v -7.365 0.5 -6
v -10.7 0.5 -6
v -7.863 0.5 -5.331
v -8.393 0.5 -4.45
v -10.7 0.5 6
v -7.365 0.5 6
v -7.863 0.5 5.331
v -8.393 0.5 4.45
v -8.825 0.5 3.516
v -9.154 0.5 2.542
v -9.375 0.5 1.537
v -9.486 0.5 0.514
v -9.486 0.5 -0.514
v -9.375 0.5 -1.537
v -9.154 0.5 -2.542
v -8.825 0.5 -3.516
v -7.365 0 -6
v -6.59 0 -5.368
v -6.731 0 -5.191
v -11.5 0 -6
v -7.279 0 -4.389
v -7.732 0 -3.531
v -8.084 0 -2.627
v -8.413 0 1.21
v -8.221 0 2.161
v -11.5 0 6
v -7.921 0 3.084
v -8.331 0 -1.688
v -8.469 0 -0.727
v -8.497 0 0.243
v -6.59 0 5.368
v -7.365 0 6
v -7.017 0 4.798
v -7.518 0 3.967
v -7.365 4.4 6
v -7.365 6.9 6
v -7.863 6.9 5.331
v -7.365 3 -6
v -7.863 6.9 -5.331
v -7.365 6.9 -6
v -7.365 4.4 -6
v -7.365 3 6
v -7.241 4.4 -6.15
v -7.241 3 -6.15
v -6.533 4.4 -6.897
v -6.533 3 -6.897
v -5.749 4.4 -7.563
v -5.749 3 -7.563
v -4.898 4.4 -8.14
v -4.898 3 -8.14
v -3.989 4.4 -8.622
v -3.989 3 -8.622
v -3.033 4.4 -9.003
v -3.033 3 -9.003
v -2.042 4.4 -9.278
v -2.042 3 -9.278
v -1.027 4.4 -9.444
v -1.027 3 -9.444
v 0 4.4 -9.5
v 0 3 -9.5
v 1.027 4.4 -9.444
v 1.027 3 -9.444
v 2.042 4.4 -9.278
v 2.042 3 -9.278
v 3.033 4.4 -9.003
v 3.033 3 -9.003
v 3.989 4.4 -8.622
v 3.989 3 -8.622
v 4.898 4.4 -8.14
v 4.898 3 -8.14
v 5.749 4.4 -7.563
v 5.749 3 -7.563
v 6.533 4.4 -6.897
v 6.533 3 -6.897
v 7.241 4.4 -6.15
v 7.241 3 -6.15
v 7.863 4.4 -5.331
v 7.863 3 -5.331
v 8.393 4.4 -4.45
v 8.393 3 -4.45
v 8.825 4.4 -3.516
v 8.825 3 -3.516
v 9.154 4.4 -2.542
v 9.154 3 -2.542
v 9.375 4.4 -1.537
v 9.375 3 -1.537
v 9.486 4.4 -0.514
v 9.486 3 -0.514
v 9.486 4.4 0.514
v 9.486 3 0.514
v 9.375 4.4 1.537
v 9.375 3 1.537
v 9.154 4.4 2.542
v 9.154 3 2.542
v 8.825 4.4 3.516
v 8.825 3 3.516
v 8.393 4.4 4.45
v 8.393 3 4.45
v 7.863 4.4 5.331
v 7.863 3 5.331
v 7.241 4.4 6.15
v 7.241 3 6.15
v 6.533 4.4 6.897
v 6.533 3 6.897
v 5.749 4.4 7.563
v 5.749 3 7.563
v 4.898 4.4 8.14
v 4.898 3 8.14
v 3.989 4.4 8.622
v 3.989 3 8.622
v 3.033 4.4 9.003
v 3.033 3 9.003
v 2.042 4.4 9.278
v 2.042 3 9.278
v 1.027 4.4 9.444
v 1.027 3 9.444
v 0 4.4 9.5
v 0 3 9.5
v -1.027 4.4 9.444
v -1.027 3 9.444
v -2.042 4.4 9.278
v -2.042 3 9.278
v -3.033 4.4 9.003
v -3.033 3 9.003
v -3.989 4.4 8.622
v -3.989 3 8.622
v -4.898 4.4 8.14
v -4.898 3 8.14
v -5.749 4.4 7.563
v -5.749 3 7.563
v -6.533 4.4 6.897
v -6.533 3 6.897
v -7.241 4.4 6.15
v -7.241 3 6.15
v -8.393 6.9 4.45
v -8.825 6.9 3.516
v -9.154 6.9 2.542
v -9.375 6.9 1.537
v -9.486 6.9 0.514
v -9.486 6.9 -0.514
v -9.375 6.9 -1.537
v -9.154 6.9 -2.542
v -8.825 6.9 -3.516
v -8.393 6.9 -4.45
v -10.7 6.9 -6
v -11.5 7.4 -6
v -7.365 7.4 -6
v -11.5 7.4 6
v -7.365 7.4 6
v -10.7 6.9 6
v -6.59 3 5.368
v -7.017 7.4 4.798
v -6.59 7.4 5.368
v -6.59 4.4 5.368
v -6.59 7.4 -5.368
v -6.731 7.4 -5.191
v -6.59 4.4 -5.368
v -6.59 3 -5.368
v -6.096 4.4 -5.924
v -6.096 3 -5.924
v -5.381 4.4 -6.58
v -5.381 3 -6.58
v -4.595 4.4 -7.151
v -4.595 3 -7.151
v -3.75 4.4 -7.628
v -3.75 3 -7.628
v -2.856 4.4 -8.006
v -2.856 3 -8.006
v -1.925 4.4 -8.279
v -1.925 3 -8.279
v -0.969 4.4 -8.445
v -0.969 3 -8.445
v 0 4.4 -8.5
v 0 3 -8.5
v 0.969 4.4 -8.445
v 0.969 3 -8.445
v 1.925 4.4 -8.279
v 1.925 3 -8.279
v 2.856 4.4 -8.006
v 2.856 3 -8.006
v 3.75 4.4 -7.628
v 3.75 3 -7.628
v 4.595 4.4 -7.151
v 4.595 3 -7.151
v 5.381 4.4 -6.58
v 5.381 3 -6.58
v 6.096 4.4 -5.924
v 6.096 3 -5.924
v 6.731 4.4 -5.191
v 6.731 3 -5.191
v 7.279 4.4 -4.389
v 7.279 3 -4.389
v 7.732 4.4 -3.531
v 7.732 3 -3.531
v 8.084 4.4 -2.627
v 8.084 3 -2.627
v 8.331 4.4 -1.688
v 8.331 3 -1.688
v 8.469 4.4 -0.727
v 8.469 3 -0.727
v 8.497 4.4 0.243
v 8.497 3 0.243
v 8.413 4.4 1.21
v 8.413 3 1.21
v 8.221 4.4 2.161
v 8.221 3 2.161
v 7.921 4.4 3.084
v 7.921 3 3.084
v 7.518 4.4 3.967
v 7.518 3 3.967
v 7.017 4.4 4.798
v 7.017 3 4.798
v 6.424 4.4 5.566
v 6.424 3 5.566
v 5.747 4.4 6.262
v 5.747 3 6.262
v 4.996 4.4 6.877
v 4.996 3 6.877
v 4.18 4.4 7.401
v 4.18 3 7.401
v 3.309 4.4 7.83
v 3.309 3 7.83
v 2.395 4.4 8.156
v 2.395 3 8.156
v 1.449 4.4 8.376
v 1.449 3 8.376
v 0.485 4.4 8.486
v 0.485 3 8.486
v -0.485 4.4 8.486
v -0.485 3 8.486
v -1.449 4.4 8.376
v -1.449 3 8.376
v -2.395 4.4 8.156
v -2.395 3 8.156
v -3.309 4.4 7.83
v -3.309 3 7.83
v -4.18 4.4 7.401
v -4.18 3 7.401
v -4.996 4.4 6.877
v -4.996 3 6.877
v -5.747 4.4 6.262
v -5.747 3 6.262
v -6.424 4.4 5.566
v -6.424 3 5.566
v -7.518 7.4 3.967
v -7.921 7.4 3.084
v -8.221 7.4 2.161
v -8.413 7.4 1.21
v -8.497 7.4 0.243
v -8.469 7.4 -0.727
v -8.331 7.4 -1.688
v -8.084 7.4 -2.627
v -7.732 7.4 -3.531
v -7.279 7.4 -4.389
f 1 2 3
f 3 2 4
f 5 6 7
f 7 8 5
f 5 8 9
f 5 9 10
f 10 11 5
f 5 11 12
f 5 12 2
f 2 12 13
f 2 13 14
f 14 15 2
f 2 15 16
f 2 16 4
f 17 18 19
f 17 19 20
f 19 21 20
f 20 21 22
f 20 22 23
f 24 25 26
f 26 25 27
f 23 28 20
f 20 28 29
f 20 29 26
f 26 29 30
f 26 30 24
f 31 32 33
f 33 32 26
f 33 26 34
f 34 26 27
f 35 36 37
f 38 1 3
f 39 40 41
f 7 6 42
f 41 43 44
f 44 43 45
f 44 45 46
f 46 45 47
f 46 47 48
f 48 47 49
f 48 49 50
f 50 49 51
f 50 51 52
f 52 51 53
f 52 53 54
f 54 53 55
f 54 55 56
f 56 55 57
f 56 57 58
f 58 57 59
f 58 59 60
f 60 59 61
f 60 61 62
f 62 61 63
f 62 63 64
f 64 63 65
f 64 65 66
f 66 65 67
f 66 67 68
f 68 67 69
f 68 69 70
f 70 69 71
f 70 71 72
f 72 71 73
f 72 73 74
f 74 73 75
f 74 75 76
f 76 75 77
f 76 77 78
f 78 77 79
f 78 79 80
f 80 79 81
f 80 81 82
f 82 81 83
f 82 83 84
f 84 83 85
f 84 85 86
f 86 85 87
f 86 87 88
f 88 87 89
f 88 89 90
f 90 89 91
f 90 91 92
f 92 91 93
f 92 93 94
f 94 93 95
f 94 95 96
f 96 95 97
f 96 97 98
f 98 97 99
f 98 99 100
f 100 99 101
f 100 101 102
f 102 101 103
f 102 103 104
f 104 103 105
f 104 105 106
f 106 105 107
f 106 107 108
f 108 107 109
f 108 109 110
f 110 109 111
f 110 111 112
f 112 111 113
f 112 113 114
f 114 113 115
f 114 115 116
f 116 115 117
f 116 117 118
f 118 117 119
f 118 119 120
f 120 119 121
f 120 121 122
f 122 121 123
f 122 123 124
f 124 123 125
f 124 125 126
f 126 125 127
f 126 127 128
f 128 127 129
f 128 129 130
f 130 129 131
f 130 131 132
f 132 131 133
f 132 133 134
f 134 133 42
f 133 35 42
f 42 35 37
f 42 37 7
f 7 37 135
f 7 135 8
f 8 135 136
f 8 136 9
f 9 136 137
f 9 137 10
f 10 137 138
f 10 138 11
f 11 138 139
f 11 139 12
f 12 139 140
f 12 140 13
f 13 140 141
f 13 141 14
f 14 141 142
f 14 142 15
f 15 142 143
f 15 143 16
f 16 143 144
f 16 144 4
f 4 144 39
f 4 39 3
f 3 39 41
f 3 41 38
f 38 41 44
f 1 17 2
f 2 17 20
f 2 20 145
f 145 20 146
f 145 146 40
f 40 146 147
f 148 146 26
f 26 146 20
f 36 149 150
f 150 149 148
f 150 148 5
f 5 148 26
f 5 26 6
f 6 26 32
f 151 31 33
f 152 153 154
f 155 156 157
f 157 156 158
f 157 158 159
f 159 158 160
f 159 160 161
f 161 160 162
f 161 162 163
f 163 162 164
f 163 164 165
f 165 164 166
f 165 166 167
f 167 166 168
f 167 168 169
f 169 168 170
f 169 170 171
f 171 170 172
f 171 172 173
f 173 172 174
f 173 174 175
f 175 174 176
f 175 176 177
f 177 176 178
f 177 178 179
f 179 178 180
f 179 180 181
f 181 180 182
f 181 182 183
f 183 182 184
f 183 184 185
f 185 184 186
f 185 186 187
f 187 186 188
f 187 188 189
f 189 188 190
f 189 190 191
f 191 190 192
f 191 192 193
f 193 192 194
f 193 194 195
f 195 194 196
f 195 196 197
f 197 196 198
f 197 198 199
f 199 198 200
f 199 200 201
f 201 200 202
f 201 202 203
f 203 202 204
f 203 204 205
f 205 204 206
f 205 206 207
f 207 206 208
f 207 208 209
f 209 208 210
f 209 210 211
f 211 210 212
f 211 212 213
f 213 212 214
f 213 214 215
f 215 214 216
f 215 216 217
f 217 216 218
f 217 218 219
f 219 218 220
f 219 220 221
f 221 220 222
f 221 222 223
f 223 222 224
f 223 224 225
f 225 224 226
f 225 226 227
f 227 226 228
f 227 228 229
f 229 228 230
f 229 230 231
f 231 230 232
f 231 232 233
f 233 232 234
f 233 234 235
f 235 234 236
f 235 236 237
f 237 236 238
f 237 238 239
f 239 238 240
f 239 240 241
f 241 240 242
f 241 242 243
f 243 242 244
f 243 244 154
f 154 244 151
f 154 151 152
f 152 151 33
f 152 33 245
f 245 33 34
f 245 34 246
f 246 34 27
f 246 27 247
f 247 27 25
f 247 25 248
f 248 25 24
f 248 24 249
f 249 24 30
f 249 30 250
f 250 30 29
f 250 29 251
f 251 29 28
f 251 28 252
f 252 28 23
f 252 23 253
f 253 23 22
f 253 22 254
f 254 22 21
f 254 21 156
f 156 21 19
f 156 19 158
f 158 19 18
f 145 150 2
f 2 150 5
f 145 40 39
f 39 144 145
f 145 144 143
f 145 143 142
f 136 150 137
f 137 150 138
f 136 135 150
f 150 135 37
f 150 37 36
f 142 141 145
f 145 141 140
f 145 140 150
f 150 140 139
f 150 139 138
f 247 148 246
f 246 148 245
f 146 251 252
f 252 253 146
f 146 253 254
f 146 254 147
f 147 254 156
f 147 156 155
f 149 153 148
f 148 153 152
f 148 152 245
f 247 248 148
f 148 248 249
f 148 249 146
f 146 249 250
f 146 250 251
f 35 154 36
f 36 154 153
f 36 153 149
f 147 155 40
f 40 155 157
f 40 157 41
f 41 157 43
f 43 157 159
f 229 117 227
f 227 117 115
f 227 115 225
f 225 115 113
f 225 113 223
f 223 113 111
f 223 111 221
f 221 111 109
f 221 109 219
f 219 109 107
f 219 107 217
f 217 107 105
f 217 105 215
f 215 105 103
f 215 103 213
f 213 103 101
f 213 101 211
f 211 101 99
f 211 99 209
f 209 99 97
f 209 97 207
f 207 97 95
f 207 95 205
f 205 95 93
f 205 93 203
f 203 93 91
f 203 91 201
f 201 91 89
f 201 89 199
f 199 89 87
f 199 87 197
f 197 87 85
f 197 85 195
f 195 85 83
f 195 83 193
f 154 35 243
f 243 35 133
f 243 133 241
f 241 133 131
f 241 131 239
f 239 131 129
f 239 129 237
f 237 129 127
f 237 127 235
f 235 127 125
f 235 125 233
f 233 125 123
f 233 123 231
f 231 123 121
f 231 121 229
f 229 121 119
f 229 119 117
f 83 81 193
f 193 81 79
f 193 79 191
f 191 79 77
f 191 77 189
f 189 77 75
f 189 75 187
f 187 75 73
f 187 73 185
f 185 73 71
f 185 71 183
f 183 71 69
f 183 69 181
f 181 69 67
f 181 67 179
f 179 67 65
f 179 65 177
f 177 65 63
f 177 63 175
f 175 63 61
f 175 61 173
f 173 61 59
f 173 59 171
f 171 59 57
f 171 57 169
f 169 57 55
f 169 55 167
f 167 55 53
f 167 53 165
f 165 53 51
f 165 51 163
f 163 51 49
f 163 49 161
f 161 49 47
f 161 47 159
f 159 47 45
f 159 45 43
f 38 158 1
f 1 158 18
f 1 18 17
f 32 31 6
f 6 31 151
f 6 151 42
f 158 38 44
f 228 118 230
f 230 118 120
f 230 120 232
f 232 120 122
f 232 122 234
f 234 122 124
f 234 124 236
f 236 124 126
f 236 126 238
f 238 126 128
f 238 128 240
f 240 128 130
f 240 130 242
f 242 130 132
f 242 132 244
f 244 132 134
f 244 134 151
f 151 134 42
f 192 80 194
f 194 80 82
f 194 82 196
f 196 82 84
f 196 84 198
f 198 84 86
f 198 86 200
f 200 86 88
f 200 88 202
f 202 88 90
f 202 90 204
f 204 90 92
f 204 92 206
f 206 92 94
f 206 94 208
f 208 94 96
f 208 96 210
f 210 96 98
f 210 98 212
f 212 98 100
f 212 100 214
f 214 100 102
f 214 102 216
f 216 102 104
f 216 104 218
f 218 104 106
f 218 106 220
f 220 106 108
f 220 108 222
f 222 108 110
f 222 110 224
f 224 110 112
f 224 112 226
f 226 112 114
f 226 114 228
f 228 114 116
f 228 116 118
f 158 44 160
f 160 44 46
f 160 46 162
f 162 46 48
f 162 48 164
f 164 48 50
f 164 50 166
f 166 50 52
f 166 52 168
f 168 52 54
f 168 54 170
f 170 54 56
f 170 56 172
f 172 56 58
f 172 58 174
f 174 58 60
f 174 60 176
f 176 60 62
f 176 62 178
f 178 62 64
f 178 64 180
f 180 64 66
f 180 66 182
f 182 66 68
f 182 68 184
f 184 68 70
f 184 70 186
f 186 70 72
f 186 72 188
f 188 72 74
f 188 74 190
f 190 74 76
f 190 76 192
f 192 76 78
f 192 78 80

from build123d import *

# Parameters (mm, degrees)
SKETCH_1_R          = 8.5
EXTRUDE_1_DEPTH     = 0.5
SKETCH_5_R          = 9.5
SKETCH_5_R_2        = 8.5
SKETCH_5_W          = 0.8
SKETCH_5_H          = 12
EXTRUDE_4_DEPTH     = 6.4
SKETCH_6_R          = 8.5
EXTRUDE_5_DEPTH     = 0.5
CUT_EXTRUDE_START   = -3
CUT_EXTRUDE_1_DEPTH = 3
CUT_EXTRUDE_2_DEPTH = 3


with BuildPart() as part:
    # 草图1 → 凸台-拉伸1 (new body)
    with BuildSketch(Plane(origin=(0, 0, 0), x_dir=(1, 0, 0), z_dir=(0, 1, 0))):
        with BuildLine():
            Line((-11.5, 6), (-11.5, -6))
            Line((-11.5, -6), (-7.365459931, -6))
            ThreePointArc((-7.365459931, -6), (9.5, 0), (-7.365459931, 6))
            Line((-7.365459931, 6), (-11.5, 6))
        make_face()
        with Locations(Location((0, 0, 0), (0, 0, 270))):
            Circle(SKETCH_1_R, mode=Mode.SUBTRACT)
    extrude(amount=EXTRUDE_1_DEPTH)

    # 草图5 → 凸台-拉伸4 (add)
    # profile 1 of 2: a face of its own
    with BuildSketch(Plane(origin=(0, 0.5, 0), x_dir=(1, 0, 0), z_dir=(0, 1, 0))):
        with Locations(Location((0, 0, 0), (0, 0, 140.833289284))):
            Circle(SKETCH_5_R)
        with Locations(Location((0, 0, 0), (0, 0, 270))):
            Circle(SKETCH_5_R_2, mode=Mode.SUBTRACT)
    # profile 2 of 2: a face of its own
    with BuildSketch(Plane(origin=(0, 0.5, 0), x_dir=(1, 0, 0), z_dir=(0, 1, 0))):
        with Locations((-11.1, 0)):
            Rectangle(SKETCH_5_W, SKETCH_5_H)
    extrude(amount=EXTRUDE_4_DEPTH)

    # 草图6 → 凸台-拉伸5 (add)
    with BuildSketch(Plane(origin=(0, 6.9, 0), x_dir=(1, 0, 0), z_dir=(0, 1, 0))):
        with BuildLine():
            Line((-11.5, 6), (-11.5, -6))
            Line((-11.5, -6), (-7.365459931, -6))
            ThreePointArc((-7.365459931, -6), (9.5, 0), (-7.365459931, 6))
            Line((-7.365459931, 6), (-11.5, 6))
        make_face()
        with Locations(Location((0, 0, 0), (0, 0, 270))):
            Circle(SKETCH_6_R, mode=Mode.SUBTRACT)
    extrude(amount=EXTRUDE_5_DEPTH)

    # 草图7 → 切除-拉伸1 (cut)
    with BuildSketch(Plane(origin=(0, 7.4, 0), x_dir=(1, 0, 0), z_dir=(0, 1, 0)).offset(CUT_EXTRUDE_START)):
        with BuildLine():
            Line((-7.365459931, 6), (-6.59014836, 5.368421053))
            ThreePointArc((-6.59014836, 5.368421053), (8.5, 0), (-6.59014836, -5.368421053))
            Line((-6.59014836, -5.368421053), (-7.365459931, -6))
            ThreePointArc((-7.365459931, -6), (9.5, 0), (-7.365459931, 6))
        make_face()
    extrude(amount=CUT_EXTRUDE_1_DEPTH, mode=Mode.SUBTRACT)

    # 草图8 → 切除-拉伸2 (cut)
    with BuildSketch(Plane(origin=(0, 0, 0), x_dir=(-1, 0, 0), z_dir=(0, -1, 0))):
        with BuildLine():
            Line((7.365459931, -6), (6.59014836, -5.368421053))
            ThreePointArc((6.59014836, -5.368421053), (-8.5, 0), (6.59014836, 5.368421053))
            Line((6.59014836, 5.368421053), (7.365459931, 6))
            ThreePointArc((7.365459931, 6), (-9.5, 0), (7.365459931, -6))
        make_face()
    extrude(amount=-CUT_EXTRUDE_2_DEPTH, mode=Mode.SUBTRACT)


solid = part.part
